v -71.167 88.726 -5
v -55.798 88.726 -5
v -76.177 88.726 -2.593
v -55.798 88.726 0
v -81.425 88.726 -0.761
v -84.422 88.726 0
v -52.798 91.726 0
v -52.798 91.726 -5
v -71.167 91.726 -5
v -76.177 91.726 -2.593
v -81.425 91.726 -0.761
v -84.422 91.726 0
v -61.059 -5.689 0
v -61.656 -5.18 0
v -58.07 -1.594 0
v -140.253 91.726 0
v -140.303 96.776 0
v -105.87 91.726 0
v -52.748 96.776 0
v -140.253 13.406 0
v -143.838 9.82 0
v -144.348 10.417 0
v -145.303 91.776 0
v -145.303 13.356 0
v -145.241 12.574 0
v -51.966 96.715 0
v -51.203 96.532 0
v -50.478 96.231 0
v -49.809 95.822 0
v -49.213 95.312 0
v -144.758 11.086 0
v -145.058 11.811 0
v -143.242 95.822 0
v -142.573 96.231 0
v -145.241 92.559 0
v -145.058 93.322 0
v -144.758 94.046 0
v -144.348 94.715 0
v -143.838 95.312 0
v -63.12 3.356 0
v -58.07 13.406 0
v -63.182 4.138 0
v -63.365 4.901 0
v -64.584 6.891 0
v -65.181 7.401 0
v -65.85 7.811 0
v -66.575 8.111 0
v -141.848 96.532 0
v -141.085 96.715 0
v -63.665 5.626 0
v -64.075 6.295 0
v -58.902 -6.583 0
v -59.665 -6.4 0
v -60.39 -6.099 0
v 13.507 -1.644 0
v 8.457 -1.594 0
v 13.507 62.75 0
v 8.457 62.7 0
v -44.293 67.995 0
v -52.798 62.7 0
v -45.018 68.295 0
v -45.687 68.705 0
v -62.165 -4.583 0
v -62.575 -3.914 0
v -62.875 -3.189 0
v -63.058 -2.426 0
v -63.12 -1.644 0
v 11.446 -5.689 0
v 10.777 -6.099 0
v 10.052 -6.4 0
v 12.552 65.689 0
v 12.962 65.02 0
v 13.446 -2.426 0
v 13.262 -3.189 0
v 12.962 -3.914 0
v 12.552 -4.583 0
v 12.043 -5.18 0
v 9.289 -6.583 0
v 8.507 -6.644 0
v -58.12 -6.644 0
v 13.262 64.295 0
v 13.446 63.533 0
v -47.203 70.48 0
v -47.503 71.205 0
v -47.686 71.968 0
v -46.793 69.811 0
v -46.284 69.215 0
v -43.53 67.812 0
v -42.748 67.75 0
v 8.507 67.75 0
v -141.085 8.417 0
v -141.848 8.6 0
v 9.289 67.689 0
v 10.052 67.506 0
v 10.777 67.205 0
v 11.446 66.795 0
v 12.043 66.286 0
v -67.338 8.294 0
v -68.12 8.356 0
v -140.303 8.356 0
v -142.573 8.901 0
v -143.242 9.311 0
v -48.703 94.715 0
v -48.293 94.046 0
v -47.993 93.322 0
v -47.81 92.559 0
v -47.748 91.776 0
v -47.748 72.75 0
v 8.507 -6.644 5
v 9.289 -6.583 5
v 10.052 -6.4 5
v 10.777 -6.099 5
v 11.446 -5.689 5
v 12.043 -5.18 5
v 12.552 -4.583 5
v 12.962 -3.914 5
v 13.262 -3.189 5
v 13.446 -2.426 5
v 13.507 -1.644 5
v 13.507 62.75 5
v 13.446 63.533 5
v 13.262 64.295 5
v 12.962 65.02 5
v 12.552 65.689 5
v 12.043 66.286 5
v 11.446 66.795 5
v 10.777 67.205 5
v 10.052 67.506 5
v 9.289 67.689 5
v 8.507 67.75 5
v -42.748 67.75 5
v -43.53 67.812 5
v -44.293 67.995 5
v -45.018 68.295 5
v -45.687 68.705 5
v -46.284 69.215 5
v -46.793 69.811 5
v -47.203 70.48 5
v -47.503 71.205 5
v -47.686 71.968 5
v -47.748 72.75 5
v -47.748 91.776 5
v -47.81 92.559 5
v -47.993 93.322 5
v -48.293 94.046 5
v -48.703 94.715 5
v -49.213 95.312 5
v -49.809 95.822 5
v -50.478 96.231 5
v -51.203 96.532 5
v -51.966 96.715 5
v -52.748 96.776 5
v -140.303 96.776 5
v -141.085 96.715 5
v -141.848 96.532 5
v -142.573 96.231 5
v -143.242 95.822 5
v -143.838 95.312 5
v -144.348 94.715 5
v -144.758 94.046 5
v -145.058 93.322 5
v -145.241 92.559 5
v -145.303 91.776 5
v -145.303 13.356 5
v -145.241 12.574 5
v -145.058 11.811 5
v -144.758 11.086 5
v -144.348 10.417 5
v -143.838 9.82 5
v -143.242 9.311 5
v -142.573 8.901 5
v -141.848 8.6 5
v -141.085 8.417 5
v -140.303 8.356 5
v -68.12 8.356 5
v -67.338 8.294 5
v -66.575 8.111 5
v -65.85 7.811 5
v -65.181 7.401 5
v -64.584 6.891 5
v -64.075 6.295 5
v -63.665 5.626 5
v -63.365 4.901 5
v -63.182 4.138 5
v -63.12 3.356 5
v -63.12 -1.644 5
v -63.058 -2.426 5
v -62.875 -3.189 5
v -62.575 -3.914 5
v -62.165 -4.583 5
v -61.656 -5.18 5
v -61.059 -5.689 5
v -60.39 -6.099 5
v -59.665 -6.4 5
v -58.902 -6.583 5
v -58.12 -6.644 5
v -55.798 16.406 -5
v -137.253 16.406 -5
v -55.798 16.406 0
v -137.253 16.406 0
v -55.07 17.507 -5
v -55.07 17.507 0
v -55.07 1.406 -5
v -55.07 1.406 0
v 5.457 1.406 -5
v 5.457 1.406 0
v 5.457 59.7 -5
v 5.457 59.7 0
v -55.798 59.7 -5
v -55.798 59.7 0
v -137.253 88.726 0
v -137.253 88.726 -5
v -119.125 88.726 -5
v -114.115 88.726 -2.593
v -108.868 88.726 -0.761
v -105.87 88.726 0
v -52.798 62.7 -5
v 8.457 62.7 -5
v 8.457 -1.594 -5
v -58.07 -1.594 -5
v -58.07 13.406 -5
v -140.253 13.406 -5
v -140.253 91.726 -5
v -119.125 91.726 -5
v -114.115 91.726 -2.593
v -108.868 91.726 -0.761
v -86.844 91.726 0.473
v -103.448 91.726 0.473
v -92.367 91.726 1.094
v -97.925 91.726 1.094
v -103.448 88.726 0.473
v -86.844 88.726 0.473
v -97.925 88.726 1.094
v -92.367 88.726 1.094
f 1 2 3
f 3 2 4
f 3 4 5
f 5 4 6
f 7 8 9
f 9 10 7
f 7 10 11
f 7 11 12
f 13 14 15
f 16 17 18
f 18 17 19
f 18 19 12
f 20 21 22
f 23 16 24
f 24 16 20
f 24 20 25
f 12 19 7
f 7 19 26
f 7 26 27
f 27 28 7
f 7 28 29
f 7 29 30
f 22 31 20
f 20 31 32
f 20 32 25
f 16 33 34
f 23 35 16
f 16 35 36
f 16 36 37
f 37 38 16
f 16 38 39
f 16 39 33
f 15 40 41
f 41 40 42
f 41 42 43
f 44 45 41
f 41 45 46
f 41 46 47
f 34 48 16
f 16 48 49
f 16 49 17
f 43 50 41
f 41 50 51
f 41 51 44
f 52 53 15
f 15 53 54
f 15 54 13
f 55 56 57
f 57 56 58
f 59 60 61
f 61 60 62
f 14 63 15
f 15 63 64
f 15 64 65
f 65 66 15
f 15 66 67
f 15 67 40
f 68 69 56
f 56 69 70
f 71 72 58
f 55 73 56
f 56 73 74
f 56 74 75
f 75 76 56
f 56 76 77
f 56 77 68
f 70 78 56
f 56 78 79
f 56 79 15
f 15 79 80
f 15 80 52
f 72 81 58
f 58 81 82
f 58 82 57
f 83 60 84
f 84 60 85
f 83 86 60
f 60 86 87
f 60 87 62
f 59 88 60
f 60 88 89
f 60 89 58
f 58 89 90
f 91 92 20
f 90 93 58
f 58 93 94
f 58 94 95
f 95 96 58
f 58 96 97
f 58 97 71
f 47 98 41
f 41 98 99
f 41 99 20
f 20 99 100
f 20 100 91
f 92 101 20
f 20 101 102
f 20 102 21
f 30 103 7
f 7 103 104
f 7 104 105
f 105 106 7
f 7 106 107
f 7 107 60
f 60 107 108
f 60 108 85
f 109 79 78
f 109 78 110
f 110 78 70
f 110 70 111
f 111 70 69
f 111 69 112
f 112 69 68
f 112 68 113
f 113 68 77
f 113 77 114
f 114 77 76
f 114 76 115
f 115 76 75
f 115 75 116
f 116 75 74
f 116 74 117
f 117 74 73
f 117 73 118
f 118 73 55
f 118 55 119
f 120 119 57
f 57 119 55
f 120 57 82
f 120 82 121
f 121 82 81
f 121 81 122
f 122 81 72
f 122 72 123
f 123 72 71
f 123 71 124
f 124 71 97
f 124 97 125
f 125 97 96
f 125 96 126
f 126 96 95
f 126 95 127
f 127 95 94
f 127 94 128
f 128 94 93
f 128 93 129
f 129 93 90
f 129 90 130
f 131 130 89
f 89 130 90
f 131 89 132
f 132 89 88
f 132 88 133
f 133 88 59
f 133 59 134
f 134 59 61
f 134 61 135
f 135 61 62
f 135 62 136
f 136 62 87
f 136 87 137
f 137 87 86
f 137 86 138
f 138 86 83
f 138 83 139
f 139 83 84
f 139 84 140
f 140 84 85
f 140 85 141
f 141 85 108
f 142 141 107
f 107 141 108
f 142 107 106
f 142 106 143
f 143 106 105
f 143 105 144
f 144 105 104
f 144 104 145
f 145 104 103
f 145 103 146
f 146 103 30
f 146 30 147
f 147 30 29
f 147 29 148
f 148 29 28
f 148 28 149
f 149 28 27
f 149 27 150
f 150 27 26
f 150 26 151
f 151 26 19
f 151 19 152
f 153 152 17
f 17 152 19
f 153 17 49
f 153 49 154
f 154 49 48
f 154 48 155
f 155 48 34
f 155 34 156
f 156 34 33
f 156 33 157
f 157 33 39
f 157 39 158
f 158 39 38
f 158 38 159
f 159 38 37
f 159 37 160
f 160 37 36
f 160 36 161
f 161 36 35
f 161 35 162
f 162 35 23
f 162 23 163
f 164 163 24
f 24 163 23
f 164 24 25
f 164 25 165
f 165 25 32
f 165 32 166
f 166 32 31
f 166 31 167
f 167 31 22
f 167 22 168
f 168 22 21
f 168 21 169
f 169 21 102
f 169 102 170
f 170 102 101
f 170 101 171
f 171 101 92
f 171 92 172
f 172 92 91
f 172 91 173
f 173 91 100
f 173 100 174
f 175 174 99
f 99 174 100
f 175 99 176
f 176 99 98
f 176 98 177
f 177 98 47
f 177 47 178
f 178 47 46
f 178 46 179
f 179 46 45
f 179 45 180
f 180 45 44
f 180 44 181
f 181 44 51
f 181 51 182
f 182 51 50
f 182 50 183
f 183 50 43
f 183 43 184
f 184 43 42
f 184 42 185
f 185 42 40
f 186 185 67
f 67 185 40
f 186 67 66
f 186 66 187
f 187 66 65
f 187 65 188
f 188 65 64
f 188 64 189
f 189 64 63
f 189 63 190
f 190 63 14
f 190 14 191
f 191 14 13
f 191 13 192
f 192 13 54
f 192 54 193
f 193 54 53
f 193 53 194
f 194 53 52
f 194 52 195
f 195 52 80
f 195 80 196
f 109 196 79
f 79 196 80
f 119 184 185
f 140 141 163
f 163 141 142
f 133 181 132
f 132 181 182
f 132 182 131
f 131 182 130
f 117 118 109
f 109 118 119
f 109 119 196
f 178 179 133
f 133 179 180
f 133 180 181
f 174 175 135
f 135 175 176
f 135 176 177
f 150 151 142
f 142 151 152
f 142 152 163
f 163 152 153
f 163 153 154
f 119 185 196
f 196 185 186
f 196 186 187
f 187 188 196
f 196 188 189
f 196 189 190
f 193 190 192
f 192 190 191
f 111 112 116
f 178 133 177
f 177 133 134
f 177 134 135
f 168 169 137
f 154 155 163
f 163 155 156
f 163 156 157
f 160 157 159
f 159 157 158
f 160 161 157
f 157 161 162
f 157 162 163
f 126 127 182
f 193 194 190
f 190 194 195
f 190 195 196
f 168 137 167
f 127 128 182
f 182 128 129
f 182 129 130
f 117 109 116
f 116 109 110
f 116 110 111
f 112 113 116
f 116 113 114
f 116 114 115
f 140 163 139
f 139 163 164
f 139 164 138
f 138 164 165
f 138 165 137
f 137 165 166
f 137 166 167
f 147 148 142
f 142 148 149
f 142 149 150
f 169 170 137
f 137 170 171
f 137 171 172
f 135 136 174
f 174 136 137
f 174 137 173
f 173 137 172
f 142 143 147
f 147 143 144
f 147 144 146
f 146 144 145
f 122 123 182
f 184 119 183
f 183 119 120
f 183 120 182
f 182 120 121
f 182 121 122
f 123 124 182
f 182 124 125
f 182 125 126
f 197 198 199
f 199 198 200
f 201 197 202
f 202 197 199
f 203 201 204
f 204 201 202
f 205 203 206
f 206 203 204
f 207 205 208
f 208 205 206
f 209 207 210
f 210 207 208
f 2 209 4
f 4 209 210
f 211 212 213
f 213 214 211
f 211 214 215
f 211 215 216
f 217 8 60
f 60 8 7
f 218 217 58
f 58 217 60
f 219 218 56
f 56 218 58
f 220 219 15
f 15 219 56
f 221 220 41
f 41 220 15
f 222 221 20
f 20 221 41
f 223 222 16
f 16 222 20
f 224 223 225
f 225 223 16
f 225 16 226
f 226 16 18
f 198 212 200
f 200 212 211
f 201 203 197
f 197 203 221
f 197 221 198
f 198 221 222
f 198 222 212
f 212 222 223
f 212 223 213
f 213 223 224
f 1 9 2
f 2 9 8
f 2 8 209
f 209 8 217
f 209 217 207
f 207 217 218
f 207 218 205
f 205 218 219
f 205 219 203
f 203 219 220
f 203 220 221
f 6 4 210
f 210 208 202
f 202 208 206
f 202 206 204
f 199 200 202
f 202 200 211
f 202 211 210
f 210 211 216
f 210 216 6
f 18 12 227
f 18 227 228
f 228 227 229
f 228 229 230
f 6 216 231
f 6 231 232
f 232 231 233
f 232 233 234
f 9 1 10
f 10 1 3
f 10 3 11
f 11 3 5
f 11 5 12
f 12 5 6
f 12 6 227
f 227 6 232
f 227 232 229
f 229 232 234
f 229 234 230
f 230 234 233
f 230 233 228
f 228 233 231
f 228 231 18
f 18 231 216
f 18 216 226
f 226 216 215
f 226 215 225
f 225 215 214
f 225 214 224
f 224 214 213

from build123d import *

# Parameters (mm, degrees)
BOSS_EXTRUDE1_DEPTH = 5
BOSS_EXTRUDE2_DEPTH = 5
SKETCH3_R           = 49.671400597
CUT_EXTRUDE1_DEPTH  = 3


# Read off the part's stored shape, not the designer's step: Boss-Extrude2
with BuildPart() as part:
    # Sketch1 → Boss-Extrude1 (new body)
    with BuildSketch(Plane.XY):
        with BuildLine():
            Line((-140.302659687, 8.355782272), (-68.12, 8.355782272))
            ThreePointArc((-68.12, 8.355782272), (-64.584466094, 6.891316178), (-63.12, 3.355782272))
            Line((-63.12, 3.355782272), (-63.12, -1.644217728))
            ThreePointArc((-63.12, -1.644217728), (-61.655533906, -5.179751634), (-58.12, -6.644217728))
            Line((-58.12, -6.644217728), (8.507075949, -6.644217728))
            ThreePointArc((8.507075949, -6.644217728), (12.042609855, -5.179751634), (13.507075949, -1.644217728))
            Line((13.507075949, -1.644217728), (13.507075949, 62.750348787))
            ThreePointArc((13.507075949, 62.750348787), (12.042609855, 66.285882693), (8.507075949, 67.750348787))
            Line((8.507075949, 67.750348787), (-42.74804895, 67.750348787))
            ThreePointArc((-42.74804895, 67.750348787), (-46.283582856, 69.214814881), (-47.74804895, 72.750348787))
            Line((-47.74804895, 72.750348787), (-47.74804895, 91.776437317))
            ThreePointArc((-47.74804895, 91.776437317), (-49.212515044, 95.311971223), (-52.74804895, 96.776437317))
            Line((-52.74804895, 96.776437317), (-140.302659687, 96.776437317))
            ThreePointArc((-140.302659687, 96.776437317), (-143.838193593, 95.311971223), (-145.302659687, 91.776437317))
            Line((-145.302659687, 91.776437317), (-145.302659687, 13.355782272))
            ThreePointArc((-145.302659687, 13.355782272), (-143.838193593, 9.820248366), (-140.302659687, 8.355782272))
        make_face()
    extrude(amount=BOSS_EXTRUDE1_DEPTH)

    # Boss-Extrude2 outline → Boss-Extrude2 (add)
    with BuildSketch(Plane(origin=(0, 0, 0), x_dir=(-1, 0, 0), z_dir=(0, 0, -1))):
        Polygon((52.79804895, 91.726437317), (52.79804895, 62.700348787), (-8.457075949, 62.700348787), (-8.457075949, -1.594217728), (58.07, -1.594217728), (58.07, 13.405782272), (140.252659687, 13.405782272), (140.252659687, 91.726437317), align=None)
        Polygon((137.252659687, 16.405782272), (55.79804895, 16.405782272), (55.07, 17.506577949), (55.07, 1.405782272), (-5.457075949, 1.405782272), (-5.457075949, 59.700348787), (55.79804895, 59.700348787), (55.79804895, 88.726437317), (137.252659687, 88.726437317), align=None, mode=Mode.SUBTRACT)
    extrude(amount=BOSS_EXTRUDE2_DEPTH)

    # Sketch3 → Cut-Extrude1 (cut)
    with BuildSketch(Plane.XZ.offset(-88.726437317)):
        with Locations((-95.146165884, -48.5)):
            Circle(SKETCH3_R)
    extrude(amount=-CUT_EXTRUDE1_DEPTH, mode=Mode.SUBTRACT)


solid = part.part
